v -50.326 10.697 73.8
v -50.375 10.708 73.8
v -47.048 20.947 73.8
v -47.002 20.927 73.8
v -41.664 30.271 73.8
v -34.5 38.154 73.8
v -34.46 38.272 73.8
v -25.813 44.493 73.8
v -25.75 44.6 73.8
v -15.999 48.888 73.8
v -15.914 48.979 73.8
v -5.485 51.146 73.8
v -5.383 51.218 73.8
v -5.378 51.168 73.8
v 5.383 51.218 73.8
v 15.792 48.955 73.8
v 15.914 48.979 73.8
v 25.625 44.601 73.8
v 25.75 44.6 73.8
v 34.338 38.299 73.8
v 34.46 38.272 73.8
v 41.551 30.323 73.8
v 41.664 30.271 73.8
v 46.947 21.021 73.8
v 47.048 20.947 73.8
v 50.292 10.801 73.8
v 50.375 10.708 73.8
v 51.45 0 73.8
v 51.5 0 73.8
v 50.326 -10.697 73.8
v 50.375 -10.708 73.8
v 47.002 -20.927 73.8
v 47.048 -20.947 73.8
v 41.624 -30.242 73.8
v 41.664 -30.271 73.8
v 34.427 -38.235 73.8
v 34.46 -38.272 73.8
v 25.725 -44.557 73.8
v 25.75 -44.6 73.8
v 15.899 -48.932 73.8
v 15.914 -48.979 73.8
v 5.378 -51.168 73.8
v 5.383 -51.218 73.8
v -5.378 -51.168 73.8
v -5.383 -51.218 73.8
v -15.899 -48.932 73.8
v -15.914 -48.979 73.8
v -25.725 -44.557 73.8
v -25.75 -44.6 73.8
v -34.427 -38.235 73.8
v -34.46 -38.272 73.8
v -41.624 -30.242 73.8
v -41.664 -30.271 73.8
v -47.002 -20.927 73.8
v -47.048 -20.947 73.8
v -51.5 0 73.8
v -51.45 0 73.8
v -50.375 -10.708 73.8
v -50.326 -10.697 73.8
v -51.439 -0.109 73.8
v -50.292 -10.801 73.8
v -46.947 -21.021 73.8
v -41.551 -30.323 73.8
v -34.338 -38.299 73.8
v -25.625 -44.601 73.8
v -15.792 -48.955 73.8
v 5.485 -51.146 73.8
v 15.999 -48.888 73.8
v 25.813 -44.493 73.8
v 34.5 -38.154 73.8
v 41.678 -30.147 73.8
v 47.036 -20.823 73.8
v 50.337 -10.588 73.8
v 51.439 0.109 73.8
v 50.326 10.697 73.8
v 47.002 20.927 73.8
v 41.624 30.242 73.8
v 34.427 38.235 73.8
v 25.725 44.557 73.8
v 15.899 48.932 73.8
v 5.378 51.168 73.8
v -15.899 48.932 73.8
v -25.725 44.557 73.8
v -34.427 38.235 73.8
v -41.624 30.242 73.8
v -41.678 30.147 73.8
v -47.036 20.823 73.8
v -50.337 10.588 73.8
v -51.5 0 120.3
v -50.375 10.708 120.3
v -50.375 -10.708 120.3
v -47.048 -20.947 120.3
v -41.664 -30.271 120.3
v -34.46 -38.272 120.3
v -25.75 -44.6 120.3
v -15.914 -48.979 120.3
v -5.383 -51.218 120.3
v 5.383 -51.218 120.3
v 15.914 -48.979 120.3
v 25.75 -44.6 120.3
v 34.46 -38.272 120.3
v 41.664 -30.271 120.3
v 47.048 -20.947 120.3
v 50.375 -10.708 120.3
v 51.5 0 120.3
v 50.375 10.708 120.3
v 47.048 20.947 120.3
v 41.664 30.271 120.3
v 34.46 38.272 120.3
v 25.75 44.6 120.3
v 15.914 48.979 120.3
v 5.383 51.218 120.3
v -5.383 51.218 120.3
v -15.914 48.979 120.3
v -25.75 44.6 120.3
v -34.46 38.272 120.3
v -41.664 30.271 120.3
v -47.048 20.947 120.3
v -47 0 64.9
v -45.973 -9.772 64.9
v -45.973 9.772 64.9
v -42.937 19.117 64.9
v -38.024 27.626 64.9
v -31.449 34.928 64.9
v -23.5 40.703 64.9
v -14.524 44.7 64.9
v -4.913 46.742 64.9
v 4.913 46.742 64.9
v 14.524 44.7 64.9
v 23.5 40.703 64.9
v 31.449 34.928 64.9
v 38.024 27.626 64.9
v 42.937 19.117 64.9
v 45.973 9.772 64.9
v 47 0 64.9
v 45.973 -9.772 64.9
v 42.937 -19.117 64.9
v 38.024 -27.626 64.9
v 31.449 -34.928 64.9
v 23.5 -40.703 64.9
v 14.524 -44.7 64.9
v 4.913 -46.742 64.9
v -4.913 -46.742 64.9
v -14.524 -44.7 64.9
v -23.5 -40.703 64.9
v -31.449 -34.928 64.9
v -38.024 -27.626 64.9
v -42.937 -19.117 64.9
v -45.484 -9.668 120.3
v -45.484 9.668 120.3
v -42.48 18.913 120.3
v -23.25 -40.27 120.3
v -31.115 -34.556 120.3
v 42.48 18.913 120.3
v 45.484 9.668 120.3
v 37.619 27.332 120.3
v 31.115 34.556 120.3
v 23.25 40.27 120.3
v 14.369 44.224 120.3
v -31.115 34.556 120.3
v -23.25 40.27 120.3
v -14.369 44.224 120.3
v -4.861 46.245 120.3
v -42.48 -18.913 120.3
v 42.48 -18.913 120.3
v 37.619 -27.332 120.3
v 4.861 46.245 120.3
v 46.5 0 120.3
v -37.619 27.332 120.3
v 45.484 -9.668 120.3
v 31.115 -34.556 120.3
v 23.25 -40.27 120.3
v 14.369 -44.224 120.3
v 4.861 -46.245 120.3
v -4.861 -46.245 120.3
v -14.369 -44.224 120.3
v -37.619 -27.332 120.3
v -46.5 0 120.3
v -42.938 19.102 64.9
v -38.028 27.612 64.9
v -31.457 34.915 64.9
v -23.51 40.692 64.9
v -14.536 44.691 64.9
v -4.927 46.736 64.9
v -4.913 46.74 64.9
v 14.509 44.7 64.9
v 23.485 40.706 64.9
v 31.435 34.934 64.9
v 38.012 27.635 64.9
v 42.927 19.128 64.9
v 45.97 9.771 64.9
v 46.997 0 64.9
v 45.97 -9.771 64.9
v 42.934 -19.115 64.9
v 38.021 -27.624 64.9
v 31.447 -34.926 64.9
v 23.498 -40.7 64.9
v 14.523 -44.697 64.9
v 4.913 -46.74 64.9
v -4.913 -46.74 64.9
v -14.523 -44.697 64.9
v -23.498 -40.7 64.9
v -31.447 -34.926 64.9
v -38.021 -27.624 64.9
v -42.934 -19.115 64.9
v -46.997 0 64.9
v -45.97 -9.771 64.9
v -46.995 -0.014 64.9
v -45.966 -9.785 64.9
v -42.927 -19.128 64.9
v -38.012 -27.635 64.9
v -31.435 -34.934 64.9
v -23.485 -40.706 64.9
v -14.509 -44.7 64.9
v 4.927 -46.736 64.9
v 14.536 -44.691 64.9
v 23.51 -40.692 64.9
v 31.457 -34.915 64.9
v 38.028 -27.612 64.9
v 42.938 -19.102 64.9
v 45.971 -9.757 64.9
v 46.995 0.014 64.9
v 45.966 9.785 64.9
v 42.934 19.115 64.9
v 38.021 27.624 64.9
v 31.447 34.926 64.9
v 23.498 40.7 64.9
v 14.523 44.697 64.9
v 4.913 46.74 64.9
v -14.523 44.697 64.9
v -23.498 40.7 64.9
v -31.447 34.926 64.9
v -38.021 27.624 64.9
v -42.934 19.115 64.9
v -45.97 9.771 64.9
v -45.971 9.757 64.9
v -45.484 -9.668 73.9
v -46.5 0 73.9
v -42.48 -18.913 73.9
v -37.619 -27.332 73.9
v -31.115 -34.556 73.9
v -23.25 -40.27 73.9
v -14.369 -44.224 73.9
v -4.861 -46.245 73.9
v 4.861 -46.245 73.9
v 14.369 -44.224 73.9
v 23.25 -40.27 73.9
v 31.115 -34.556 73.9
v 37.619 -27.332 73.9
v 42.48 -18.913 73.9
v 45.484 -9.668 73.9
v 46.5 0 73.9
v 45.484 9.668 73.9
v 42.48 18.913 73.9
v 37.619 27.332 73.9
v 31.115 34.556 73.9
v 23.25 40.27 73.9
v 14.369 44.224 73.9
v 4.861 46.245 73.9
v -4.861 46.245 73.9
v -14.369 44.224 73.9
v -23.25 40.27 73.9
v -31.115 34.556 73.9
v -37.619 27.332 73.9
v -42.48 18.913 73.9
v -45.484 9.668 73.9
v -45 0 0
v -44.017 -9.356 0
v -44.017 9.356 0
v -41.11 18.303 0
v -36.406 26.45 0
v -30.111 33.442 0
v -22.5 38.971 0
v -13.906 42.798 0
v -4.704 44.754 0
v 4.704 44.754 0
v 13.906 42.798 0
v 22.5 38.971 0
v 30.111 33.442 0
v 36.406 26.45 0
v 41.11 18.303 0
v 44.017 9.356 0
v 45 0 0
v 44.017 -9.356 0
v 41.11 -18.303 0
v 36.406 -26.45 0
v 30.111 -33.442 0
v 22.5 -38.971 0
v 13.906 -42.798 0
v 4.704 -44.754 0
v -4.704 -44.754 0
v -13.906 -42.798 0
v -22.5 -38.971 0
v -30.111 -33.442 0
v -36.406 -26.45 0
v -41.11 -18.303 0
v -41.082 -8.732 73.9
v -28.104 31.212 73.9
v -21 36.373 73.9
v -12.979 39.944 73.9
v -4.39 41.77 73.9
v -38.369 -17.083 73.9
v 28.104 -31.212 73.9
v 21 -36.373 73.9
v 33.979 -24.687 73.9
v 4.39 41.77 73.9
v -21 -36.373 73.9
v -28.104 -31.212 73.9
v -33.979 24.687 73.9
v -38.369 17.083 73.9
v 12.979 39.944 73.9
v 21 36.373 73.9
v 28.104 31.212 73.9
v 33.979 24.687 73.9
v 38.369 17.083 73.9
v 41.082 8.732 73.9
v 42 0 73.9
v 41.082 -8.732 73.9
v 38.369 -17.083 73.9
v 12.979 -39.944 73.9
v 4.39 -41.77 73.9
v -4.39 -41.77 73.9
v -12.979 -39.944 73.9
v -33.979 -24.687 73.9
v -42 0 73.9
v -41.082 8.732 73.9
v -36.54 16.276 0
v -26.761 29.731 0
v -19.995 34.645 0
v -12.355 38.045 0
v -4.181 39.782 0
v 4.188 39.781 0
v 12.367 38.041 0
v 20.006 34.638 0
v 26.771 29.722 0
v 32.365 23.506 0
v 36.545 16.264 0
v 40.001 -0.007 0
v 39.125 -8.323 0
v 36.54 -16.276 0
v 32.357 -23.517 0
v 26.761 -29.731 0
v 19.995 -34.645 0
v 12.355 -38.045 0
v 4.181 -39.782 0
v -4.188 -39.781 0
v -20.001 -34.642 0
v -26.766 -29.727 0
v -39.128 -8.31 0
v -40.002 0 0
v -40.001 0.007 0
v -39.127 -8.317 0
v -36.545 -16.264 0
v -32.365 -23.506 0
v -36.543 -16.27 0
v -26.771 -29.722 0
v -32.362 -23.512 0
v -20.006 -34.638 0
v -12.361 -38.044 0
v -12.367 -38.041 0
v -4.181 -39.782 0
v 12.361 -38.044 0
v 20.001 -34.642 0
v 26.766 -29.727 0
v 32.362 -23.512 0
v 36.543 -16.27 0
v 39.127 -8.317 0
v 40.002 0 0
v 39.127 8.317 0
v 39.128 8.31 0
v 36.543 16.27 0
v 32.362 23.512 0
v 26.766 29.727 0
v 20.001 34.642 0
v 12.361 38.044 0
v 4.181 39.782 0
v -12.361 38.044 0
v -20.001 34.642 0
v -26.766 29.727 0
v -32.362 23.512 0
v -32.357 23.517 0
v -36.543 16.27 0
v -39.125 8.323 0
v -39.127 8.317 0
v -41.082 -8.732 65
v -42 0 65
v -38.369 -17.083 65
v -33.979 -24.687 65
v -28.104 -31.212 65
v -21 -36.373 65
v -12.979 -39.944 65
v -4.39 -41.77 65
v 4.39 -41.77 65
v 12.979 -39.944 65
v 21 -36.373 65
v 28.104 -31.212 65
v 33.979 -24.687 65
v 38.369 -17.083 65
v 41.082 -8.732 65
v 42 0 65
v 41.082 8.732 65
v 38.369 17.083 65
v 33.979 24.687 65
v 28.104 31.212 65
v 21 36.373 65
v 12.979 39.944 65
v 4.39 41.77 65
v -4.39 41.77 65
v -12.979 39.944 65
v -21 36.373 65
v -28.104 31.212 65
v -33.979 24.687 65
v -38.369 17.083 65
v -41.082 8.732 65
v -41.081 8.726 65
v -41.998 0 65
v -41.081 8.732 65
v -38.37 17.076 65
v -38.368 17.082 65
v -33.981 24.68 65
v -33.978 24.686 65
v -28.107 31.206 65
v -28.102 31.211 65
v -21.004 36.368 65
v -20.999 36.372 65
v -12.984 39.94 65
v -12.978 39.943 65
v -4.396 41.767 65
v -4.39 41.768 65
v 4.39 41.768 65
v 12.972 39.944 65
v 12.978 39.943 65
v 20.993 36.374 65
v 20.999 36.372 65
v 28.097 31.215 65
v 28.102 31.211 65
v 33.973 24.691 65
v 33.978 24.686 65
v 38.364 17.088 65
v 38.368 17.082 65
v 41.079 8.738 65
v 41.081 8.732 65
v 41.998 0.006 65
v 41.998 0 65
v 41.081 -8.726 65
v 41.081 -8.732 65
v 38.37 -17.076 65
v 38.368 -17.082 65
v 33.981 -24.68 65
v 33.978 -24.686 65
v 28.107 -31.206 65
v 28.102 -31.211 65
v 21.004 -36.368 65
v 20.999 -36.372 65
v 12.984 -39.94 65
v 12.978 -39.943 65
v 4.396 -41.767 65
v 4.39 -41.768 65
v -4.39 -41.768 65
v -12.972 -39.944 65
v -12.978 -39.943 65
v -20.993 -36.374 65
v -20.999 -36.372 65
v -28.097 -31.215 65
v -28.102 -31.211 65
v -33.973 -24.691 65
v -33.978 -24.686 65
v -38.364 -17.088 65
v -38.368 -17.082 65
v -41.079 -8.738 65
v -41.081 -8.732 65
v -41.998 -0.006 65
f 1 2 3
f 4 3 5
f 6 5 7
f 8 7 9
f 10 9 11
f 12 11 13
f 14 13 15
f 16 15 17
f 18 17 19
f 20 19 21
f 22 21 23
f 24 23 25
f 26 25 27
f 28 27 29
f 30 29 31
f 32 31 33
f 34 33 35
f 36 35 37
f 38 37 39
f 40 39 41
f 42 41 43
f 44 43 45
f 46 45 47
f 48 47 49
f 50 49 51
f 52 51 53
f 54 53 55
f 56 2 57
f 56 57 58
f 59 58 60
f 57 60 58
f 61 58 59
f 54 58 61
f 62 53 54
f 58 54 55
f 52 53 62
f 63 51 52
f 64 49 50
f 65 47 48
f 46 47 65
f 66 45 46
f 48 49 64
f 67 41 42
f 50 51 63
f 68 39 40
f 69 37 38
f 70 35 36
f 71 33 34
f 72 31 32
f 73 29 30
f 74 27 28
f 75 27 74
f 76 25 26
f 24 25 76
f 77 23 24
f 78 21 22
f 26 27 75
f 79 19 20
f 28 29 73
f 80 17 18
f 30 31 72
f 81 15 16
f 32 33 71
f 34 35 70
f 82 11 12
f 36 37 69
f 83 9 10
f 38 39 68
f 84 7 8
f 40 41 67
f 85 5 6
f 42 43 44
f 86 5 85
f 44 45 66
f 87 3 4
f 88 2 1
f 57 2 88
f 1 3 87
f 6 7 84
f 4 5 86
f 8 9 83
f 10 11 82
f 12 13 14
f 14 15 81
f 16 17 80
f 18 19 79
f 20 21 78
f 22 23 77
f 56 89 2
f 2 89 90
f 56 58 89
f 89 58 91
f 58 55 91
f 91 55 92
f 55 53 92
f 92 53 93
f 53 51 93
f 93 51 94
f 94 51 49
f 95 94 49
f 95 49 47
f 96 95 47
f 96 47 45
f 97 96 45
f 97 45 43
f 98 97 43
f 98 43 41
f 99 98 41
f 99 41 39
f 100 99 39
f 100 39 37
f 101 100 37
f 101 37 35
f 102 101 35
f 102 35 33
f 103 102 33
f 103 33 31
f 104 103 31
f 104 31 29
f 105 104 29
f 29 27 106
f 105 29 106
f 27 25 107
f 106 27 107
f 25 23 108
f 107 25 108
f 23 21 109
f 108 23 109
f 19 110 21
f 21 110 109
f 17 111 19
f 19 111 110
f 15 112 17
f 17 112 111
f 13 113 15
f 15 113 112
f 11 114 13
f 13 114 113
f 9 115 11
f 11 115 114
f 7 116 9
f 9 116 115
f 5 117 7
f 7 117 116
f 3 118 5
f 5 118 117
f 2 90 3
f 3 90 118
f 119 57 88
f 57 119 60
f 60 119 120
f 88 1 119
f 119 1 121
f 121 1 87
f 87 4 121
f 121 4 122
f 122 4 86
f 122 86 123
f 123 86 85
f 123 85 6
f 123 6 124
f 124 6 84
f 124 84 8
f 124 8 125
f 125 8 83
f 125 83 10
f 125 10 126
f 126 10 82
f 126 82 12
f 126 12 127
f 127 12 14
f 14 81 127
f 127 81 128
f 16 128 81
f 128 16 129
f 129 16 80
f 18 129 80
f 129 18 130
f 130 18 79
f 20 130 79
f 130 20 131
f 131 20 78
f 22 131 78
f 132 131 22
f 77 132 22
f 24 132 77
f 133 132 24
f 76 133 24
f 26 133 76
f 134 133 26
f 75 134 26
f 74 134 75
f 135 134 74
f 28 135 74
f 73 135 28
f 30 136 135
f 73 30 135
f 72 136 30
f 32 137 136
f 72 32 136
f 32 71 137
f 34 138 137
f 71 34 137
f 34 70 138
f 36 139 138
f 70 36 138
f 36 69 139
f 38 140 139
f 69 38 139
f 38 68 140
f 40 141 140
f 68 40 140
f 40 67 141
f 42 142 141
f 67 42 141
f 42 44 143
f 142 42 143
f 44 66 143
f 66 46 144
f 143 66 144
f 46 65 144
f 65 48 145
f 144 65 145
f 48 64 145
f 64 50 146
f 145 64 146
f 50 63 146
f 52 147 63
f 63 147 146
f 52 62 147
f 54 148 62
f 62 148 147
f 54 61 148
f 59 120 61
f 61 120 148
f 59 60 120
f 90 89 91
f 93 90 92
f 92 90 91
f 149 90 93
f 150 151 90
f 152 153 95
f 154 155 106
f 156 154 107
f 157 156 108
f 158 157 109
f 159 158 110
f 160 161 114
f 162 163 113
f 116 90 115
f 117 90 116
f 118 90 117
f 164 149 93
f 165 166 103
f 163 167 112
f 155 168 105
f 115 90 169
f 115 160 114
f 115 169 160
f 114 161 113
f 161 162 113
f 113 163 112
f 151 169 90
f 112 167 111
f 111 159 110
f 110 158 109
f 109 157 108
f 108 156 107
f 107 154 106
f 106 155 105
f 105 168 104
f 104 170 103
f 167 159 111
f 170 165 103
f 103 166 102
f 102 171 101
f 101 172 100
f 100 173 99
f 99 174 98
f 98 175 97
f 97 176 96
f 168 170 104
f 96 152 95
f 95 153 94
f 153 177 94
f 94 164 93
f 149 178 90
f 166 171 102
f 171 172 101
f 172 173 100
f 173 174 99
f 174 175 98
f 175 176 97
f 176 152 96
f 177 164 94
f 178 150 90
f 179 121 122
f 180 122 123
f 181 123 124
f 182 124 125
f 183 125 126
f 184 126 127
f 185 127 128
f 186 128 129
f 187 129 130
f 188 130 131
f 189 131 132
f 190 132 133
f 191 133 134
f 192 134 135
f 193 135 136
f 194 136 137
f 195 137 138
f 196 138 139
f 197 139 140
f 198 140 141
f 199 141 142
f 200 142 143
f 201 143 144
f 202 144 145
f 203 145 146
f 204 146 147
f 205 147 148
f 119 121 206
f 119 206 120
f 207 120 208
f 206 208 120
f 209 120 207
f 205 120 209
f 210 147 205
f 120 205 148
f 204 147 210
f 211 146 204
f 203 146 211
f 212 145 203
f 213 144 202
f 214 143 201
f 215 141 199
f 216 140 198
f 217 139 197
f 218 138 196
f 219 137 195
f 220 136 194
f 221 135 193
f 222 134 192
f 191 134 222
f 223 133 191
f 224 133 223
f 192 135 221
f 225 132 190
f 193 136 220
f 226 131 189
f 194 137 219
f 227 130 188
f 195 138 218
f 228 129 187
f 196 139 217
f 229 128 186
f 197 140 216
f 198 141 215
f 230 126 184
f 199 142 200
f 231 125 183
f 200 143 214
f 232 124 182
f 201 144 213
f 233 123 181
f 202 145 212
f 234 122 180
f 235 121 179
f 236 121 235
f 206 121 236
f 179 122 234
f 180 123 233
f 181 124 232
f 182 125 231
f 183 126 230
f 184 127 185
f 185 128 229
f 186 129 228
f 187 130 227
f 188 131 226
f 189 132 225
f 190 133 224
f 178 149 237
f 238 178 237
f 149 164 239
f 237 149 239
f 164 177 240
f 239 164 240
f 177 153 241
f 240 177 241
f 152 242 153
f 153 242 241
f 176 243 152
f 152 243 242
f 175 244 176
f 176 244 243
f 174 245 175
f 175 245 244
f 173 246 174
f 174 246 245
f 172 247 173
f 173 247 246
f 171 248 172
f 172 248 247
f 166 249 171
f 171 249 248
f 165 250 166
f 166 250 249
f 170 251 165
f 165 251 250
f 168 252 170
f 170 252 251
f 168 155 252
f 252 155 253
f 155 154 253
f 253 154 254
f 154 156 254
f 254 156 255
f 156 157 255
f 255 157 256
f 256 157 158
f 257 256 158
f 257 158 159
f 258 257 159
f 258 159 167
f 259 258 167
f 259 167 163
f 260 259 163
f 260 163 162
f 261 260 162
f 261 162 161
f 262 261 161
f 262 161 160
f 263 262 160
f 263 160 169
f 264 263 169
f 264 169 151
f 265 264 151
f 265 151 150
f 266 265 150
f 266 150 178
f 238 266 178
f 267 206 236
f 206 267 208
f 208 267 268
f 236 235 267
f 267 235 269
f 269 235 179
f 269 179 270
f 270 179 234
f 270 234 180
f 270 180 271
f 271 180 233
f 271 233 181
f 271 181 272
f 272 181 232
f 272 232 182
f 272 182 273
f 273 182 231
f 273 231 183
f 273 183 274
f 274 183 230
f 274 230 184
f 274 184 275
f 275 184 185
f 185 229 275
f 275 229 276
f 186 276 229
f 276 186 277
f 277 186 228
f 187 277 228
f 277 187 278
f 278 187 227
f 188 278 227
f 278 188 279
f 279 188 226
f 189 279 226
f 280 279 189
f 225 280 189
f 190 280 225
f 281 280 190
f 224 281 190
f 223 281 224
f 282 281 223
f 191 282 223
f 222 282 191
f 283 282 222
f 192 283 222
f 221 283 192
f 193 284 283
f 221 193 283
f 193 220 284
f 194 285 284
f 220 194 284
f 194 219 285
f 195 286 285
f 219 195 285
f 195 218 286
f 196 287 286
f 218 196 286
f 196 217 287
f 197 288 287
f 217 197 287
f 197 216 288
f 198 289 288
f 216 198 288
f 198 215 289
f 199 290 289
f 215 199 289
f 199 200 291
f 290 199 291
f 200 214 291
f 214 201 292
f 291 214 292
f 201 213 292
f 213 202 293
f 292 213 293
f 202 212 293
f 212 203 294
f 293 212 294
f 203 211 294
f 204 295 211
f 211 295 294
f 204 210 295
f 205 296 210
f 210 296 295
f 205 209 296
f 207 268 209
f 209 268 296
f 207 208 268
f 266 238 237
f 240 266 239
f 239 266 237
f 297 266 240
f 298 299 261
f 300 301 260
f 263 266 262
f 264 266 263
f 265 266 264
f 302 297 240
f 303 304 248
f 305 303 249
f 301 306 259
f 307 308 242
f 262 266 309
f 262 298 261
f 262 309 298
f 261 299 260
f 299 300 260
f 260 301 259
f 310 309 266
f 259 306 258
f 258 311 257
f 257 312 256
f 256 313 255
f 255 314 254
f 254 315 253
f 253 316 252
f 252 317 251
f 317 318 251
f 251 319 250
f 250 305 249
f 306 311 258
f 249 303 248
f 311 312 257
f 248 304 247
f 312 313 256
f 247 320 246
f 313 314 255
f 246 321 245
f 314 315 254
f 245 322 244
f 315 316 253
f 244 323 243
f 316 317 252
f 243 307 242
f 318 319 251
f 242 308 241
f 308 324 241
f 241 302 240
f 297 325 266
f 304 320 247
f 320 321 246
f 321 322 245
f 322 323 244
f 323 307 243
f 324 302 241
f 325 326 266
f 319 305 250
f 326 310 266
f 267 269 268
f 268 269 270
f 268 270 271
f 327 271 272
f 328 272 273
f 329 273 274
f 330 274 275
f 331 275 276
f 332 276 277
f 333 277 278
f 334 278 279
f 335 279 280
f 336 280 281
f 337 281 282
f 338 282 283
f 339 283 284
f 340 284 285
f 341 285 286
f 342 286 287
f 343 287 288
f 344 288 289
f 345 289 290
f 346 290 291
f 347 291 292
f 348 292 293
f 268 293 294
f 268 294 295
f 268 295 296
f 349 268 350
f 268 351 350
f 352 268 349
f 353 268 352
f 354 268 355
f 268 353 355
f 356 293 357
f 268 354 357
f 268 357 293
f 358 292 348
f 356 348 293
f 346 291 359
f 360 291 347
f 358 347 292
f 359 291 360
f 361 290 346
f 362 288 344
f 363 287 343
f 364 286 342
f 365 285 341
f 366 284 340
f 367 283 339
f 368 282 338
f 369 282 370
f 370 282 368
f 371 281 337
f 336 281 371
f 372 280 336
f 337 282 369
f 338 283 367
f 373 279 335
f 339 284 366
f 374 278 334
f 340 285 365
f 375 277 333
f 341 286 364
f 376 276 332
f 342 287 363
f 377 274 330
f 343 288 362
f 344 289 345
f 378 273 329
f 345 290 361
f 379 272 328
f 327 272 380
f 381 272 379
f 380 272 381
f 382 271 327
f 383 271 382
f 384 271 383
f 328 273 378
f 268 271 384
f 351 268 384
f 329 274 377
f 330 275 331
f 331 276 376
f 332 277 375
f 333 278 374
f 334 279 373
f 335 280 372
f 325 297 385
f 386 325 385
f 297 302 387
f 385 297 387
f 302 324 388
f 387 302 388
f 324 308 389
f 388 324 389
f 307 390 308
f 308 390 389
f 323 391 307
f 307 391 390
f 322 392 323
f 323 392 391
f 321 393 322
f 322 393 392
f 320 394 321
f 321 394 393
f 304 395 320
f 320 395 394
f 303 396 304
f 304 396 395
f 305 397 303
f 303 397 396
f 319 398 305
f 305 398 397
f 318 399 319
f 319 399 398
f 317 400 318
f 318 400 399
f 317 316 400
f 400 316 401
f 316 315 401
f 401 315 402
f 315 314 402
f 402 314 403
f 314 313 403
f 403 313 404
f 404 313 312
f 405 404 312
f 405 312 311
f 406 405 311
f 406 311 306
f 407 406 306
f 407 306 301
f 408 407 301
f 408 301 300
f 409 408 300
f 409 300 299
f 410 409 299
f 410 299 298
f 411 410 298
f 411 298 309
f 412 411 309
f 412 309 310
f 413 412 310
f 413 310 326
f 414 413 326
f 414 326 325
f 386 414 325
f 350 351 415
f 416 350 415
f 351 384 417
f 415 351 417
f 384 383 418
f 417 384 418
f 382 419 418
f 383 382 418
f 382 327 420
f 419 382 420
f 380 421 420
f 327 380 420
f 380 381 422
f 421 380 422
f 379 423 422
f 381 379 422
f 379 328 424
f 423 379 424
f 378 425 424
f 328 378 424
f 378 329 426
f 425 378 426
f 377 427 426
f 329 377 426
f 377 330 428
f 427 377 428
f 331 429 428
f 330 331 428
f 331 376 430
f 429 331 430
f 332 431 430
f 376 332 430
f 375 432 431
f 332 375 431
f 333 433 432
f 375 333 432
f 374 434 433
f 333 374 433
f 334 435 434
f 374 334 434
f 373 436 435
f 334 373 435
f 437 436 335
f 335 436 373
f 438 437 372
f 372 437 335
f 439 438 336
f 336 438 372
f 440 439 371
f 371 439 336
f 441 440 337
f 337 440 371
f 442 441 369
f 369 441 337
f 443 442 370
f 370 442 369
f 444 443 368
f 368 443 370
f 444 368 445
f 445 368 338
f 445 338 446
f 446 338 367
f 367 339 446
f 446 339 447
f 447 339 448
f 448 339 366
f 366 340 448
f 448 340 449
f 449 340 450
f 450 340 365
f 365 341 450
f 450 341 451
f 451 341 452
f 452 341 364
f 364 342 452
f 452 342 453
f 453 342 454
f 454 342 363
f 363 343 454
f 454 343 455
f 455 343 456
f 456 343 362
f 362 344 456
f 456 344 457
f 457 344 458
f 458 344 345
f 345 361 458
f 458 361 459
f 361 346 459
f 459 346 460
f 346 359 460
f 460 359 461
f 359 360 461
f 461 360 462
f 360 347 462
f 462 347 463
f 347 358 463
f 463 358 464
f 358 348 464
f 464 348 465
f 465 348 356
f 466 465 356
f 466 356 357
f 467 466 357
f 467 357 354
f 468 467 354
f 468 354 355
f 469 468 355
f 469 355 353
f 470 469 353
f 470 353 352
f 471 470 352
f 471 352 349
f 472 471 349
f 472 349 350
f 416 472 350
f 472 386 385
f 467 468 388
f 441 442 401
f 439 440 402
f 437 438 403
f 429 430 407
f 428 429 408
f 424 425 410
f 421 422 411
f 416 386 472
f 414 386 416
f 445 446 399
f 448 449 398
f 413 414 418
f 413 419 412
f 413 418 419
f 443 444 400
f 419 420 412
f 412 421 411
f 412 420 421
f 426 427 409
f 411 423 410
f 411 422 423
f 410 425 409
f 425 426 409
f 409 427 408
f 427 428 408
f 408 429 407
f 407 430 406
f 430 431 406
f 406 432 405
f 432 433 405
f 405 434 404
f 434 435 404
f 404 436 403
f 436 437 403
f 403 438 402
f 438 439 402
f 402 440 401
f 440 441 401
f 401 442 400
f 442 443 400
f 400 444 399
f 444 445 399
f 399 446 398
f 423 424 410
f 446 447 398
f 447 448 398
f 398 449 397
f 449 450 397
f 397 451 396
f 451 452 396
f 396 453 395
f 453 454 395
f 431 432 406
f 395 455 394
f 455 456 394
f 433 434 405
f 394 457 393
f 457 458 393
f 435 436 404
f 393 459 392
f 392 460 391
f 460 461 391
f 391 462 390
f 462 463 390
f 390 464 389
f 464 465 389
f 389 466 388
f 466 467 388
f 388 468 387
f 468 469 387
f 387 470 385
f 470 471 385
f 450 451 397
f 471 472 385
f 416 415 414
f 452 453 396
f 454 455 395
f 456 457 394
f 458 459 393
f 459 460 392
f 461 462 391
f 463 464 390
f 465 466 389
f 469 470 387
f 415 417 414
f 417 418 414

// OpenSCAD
$fn = 30;
inch = 25.4;

wall_thickness = 5;

// 40 oz hydroflask
bottle_dia = 93;  

// 2014 C-Max
well_dia_top = 84;  // XXX 88
well_dia_bottom = 66;
well_depth = 88;

// 2007 sienna center tray
well_dia_top = 94;  // XXX 88
well_dia_bottom = 90;
well_depth = 65;

cup_od = bottle_dia + wall_thickness * 2;
cup_id = bottle_dia + .125 * inch;
cup_depth = bottle_dia/2;  

joint_height = (cup_od - well_dia_top);

module stud() {
    difference() {
        cylinder(r=well_dia_bottom/2, 
                r2=well_dia_top/2, h=well_depth, center=true);
        cylinder(r=well_dia_bottom/2-wall_thickness, 
                r2=well_dia_top/2-wall_thickness, h=well_depth+.1, center=true);
    }
}

module cup() {
    difference() {
        cylinder(r=cup_od/2, h=cup_depth, center=true);
        cylinder(r=cup_od/2-wall_thickness, h=cup_depth+.3, center=true);
    }
}

module joint() {
    difference() {
        cylinder(r=well_dia_top/2, r2=cup_od/2, h=joint_height, center=true);
        cylinder(r=well_dia_top/2-wall_thickness, h=joint_height+.1, center=true);
    }
}

module shell() {
    translate([0,0,well_depth/2]) stud();
    translate([0,0,well_depth + joint_height/2 - .1]) joint();
    translate([0,0,well_depth + joint_height + cup_depth/2 - .2]) cup();
}

shell();
